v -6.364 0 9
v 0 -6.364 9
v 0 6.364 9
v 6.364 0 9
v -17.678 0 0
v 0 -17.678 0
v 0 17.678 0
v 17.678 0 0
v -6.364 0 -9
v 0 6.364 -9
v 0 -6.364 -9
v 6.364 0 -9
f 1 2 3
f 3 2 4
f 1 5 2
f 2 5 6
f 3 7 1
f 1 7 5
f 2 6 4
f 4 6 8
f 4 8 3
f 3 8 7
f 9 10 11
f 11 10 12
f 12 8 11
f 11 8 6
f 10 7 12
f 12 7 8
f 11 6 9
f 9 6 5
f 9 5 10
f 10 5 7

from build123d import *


with BuildPart() as part:
    # Croquis1 → Recubrir1 section 0
    with BuildSketch(Plane.XY):
        Polygon((0, 17.67766953), (-17.67766953, 0), (0, -17.67766953), (17.67766953, 0), align=None)
    # Croquis2 → Recubrir1 section 1
    with BuildSketch(Plane.XY.offset(9)):
        Polygon((0, 6.363961031), (-6.363961031, 0), (0, -6.363961031), (6.363961031, 0), align=None)
    loft()

    # Croquis5 → Recubrir2 section 0
    with BuildSketch(Plane(origin=(0, 0, 0), x_dir=(-1, 0, 0), z_dir=(0, 0, -1))):
        Polygon((0, 17.67766953), (-17.67766953, 0), (0, -17.67766953), (17.67766953, 0), align=None)
    # Croquis4 → Recubrir2 section 1
    with BuildSketch(Plane(origin=(0, 0, -9), x_dir=(-1, 0, 0), z_dir=(0, 0, -1))):
        Polygon((0, -6.363961031), (6.363961031, 0), (0, 6.363961031), (-6.363961031, 0), align=None)
    loft()


solid = part.part
